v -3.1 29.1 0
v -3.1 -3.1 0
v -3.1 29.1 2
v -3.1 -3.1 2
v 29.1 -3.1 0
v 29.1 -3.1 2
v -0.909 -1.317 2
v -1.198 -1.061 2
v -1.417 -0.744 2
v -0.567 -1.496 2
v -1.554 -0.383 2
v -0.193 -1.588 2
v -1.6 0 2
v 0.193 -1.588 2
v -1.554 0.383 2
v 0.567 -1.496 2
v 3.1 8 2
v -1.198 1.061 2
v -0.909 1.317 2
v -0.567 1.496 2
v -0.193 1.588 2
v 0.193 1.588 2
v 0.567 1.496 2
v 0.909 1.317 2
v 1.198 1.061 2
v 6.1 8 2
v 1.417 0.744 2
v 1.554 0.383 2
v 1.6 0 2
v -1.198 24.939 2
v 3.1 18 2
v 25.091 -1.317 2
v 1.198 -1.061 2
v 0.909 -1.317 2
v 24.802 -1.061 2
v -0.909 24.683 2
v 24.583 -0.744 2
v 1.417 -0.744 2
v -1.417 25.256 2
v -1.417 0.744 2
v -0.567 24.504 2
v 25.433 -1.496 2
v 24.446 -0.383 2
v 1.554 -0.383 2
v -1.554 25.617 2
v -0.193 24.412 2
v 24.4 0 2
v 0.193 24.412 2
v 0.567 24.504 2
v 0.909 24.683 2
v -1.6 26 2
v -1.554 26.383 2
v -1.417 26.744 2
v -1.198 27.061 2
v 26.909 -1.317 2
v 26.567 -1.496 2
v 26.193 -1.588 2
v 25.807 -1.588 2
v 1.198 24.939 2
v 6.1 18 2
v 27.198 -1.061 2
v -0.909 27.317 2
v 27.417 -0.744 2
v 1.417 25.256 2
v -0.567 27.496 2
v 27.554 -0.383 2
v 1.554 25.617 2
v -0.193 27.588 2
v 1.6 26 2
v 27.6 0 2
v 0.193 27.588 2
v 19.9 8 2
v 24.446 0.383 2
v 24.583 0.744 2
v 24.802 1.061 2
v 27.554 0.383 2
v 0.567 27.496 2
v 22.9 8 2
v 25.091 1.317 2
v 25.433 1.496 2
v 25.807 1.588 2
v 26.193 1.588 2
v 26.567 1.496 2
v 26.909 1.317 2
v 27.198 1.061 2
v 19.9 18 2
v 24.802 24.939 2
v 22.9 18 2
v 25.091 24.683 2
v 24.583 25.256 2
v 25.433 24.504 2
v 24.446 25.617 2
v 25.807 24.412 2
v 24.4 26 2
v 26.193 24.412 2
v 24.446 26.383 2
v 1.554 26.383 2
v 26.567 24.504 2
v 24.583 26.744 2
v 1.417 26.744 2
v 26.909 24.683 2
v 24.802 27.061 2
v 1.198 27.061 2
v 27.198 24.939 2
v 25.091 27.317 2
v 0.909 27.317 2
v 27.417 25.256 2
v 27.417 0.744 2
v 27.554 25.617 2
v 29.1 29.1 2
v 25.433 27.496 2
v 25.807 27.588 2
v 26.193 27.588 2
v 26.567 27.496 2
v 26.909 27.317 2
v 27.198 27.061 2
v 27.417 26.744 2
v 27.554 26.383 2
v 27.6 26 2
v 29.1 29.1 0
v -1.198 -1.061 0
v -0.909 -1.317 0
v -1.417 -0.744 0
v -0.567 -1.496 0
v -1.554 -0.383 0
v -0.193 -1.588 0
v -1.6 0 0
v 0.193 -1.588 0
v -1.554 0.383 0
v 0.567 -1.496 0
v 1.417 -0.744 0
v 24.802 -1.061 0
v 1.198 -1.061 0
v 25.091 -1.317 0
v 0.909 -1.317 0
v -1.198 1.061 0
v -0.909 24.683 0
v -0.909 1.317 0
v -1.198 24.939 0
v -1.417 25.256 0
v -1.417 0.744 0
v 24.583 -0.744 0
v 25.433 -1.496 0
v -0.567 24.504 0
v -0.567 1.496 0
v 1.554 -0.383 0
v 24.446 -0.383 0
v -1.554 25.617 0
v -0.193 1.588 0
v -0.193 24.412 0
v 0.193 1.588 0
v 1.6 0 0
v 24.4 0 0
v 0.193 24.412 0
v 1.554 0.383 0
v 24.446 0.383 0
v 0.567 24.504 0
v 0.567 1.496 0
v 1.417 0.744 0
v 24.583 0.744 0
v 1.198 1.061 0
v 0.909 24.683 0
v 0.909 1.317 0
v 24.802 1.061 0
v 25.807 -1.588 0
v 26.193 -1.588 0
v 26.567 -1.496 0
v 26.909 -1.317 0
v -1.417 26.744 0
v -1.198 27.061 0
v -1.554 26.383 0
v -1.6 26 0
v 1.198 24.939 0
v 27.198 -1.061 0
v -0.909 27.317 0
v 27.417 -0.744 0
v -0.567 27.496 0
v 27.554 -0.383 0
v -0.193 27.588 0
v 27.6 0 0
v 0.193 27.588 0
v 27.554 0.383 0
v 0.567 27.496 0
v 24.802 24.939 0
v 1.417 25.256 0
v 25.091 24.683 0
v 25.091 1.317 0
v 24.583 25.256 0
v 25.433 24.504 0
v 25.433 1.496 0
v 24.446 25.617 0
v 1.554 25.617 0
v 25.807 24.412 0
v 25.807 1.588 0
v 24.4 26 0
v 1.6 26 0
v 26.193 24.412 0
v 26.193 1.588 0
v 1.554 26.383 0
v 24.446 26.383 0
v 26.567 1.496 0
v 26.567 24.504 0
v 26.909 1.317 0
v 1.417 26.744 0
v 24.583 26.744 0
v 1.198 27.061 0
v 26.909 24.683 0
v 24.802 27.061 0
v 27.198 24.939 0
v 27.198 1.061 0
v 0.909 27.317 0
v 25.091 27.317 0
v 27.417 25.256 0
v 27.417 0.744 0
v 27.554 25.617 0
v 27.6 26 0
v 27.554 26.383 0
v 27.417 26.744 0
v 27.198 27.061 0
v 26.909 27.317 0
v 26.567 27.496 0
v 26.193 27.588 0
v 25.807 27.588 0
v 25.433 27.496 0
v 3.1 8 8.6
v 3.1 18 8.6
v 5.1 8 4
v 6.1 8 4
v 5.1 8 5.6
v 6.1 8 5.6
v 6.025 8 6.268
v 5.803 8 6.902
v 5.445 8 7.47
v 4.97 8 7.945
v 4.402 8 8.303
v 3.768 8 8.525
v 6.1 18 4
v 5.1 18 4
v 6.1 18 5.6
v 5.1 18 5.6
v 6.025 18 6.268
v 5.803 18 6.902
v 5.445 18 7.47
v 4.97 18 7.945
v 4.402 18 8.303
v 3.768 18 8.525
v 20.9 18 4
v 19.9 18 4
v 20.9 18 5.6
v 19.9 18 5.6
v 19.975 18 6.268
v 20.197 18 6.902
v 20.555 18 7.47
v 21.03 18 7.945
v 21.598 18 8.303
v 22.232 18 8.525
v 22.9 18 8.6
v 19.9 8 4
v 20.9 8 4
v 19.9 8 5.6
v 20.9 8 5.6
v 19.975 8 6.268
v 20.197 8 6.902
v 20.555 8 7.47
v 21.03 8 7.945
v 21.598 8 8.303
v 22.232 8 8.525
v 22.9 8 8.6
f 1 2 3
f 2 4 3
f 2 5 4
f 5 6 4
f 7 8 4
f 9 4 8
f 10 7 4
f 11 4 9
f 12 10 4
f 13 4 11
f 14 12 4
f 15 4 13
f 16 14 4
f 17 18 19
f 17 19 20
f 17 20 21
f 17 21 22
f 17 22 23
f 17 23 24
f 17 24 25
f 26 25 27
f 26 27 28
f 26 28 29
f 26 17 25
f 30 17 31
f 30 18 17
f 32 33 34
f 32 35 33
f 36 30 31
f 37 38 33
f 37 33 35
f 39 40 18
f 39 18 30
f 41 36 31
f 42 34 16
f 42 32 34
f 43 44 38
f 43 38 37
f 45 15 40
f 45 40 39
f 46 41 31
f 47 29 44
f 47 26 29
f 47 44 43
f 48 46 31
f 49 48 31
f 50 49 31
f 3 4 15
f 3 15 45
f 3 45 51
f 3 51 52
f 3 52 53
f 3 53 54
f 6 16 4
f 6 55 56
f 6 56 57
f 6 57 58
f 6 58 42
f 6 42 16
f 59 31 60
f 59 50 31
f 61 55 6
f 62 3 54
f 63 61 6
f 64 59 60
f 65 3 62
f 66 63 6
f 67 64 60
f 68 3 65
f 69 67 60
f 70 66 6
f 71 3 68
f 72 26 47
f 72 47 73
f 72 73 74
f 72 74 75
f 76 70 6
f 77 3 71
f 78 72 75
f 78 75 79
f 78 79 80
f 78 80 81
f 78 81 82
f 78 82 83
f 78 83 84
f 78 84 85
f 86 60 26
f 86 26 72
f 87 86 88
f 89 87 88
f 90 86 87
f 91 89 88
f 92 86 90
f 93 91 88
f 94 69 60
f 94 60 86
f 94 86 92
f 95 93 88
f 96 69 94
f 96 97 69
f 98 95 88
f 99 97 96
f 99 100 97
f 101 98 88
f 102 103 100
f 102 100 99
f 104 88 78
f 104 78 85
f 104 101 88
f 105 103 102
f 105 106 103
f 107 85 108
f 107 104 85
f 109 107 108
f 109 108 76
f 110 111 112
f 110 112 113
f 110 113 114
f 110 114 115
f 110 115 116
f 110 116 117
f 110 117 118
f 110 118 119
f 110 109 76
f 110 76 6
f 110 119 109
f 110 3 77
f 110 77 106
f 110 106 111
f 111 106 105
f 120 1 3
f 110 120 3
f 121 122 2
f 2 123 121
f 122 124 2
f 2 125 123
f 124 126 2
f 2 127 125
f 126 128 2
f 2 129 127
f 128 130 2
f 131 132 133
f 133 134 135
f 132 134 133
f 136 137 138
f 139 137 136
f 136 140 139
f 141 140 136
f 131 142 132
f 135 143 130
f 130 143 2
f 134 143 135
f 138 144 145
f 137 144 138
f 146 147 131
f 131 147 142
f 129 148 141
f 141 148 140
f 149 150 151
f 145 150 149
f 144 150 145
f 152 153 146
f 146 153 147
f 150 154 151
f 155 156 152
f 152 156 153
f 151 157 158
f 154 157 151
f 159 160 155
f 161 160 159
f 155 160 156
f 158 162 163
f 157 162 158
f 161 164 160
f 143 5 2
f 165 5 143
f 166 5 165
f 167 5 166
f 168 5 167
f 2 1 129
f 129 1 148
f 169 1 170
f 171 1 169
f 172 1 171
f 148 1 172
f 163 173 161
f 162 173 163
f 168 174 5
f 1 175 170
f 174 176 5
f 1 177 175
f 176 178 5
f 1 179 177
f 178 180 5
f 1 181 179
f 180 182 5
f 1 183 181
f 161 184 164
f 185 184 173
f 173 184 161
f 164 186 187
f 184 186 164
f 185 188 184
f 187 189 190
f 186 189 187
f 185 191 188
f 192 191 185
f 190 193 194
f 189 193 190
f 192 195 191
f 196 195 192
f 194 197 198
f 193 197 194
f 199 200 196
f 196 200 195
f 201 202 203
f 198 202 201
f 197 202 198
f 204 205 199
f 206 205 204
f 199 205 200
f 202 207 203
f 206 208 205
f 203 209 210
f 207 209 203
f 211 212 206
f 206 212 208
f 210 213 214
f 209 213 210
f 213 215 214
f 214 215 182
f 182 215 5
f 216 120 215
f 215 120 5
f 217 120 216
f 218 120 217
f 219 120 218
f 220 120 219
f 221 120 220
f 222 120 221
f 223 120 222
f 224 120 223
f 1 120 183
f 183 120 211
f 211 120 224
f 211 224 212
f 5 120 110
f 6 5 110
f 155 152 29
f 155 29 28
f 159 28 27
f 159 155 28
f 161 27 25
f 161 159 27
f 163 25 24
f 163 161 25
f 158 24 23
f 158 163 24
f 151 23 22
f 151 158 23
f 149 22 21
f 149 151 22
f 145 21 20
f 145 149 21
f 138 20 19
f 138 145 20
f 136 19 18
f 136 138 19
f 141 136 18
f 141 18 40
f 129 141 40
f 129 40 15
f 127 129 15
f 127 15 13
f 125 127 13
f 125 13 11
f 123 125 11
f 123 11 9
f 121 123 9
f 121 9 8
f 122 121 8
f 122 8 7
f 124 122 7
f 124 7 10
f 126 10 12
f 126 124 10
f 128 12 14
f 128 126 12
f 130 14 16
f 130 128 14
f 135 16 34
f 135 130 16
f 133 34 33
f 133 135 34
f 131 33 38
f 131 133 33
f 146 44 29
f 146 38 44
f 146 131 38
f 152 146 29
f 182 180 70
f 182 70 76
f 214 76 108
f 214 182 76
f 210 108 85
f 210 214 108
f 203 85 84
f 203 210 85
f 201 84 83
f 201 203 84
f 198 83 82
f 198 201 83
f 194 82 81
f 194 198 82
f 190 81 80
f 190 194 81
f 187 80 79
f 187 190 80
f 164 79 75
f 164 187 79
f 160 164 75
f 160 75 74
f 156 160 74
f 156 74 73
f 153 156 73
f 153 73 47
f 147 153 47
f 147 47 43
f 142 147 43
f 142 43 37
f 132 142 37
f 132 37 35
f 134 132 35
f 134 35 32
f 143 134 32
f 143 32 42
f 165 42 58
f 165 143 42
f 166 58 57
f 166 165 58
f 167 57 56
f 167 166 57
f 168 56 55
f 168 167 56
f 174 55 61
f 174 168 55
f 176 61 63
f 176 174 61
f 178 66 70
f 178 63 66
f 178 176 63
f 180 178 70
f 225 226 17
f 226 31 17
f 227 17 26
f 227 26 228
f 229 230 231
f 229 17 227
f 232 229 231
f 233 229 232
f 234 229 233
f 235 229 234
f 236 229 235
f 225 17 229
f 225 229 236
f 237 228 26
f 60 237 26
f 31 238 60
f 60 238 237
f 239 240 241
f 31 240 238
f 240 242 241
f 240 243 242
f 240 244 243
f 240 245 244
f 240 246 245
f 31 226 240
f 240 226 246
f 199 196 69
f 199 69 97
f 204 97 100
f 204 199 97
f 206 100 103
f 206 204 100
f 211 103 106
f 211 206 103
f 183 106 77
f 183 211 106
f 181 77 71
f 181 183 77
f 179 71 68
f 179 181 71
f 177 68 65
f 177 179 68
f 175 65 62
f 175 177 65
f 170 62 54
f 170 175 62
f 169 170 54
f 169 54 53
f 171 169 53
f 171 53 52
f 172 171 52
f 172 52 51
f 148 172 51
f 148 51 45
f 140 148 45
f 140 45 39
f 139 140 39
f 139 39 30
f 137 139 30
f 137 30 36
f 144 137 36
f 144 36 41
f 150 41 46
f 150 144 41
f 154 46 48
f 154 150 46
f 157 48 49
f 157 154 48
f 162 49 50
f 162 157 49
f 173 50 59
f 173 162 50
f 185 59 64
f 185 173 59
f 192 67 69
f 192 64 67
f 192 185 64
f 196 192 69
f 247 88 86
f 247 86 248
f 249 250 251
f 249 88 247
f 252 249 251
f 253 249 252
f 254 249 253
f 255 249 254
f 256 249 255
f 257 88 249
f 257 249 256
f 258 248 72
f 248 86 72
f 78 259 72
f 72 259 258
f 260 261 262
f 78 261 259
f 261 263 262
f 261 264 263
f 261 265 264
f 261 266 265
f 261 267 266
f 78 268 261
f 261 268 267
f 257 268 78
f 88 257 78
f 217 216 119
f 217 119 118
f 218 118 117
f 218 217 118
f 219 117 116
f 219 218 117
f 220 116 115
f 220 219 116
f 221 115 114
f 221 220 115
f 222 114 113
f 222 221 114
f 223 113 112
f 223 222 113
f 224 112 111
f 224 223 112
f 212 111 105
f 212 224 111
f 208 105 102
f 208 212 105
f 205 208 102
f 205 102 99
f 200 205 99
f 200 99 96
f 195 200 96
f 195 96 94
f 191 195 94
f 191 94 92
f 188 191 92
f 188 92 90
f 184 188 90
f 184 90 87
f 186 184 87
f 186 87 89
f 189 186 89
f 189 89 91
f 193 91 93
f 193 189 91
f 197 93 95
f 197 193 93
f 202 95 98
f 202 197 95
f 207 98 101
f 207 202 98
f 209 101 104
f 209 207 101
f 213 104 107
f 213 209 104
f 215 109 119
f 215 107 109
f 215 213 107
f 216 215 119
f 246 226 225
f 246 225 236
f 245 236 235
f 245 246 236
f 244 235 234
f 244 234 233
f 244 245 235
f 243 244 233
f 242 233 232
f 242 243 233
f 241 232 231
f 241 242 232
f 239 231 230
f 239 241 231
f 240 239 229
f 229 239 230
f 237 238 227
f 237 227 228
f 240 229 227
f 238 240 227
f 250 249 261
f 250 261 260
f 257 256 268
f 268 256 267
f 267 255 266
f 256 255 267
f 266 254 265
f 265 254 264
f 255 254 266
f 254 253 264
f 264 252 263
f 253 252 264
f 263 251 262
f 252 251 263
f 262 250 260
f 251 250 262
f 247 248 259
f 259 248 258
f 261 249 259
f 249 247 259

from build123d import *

# Parameters (mm, degrees)
EXTRUDE_DEPTH     = 10
EXTRUDE002_DEPTH  = 10
CYLINDER016_R     = 1.6
CYLINDER016_DEPTH = 10
CYLINDER015_R     = 1.6
CYLINDER015_DEPTH = 10
CYLINDER014_R     = 1.6
CYLINDER014_DEPTH = 10
CYLINDER013_R     = 1.6
CYLINDER013_DEPTH = 10
BOX_W             = 32.2
BOX_H             = 32.2
BOX_DEPTH         = 2


with BuildPart() as extrude_body:
    # Sketch → Extrude (new body)
    with BuildSketch(Plane.XZ):
        with BuildLine():
            Line((7.9, 3.6), (6.9, 3.6))
            ThreePointArc((9.9, 6.6), (7.77868, 5.72132), (6.9, 3.6))
            Line((9.9, 6.6), (9.9, 0))
            Line((9.9, 0), (6.9, 0))
            Line((6.9, 2), (6.9, 0))
            Line((7.9, 2), (6.9, 2))
            Line((7.9, 3.6), (7.9, 2))
        make_face()
    extrude(amount=EXTRUDE_DEPTH)


with BuildPart() as part_mirroring:
    # Part__Mirroring: instance of Extrude body
    add(extrude_body.part.mirror(Plane(origin=(0, 0, 0), x_dir=(0, -1, 0), z_dir=(1, 0, 0))))


with BuildPart() as h_bridge_mount:
    # Sketch002 → Extrude002 (new body)
    with BuildSketch(Plane.XZ):
        with BuildLine():
            Line((7.9, 3.6), (6.9, 3.6))
            ThreePointArc((9.9, 6.6), (7.77868, 5.72132), (6.9, 3.6))
            Line((9.9, 6.6), (9.9, 0))
            Line((9.9, 0), (6.9, 0))
            Line((6.9, 2), (6.9, 0))
            Line((7.9, 2), (6.9, 2))
            Line((7.9, 3.6), (7.9, 2))
        make_face()
    extrude(amount=EXTRUDE002_DEPTH)

    # Fusion: union Part__Mirroring
    add(part_mirroring.part)


with BuildPart() as h_bridge_mount_1:
    # Fusion placement: moved
    add(h_bridge_mount.part.moved(Location((13, 18, 2))))


with BuildPart() as mount_point003:
    # Cylinder016 → Cylinder016 (new body)
    with BuildSketch(Plane(origin=(26, 0, 0), x_dir=(1, 0, 0), z_dir=(0, 0, 1))):
        Circle(CYLINDER016_R)
    extrude(amount=CYLINDER016_DEPTH)


with BuildPart() as mount_point002:
    # Cylinder015 → Cylinder015 (new body)
    with BuildSketch(Plane(origin=(26, 26, 0), x_dir=(1, 0, 0), z_dir=(0, 0, 1))):
        Circle(CYLINDER015_R)
    extrude(amount=CYLINDER015_DEPTH)


with BuildPart() as mount_point001:
    # Cylinder014 → Cylinder014 (new body)
    with BuildSketch(Plane(origin=(0, 26, 0), x_dir=(1, 0, 0), z_dir=(0, 0, 1))):
        Circle(CYLINDER014_R)
    extrude(amount=CYLINDER014_DEPTH)


with BuildPart() as mount_point000:
    # Cylinder013 → Cylinder013 (new body)
    with BuildSketch(Plane.XY):
        Circle(CYLINDER013_R)
    extrude(amount=CYLINDER013_DEPTH)


with BuildPart() as fusion001:
    # Box → Box (new body)
    with BuildSketch(Plane(origin=(-3.1, -3.1, 0), x_dir=(1, 0, 0), z_dir=(0, 0, 1))):
        with Locations((16.1, 16.1)):
            Rectangle(BOX_W, BOX_H)
    extrude(amount=BOX_DEPTH)

    # Cut: cut Mount Point000
    add(mount_point000.part, mode=Mode.SUBTRACT)

    # Cut001: cut Mount Point001
    add(mount_point001.part, mode=Mode.SUBTRACT)

    # Cut002: cut Mount Point002
    add(mount_point002.part, mode=Mode.SUBTRACT)

    # Cut003: cut Mount Point003
    add(mount_point003.part, mode=Mode.SUBTRACT)

    # Fusion001: union H Bridge Mount
    add(h_bridge_mount_1.part)


solid = fusion001.part
